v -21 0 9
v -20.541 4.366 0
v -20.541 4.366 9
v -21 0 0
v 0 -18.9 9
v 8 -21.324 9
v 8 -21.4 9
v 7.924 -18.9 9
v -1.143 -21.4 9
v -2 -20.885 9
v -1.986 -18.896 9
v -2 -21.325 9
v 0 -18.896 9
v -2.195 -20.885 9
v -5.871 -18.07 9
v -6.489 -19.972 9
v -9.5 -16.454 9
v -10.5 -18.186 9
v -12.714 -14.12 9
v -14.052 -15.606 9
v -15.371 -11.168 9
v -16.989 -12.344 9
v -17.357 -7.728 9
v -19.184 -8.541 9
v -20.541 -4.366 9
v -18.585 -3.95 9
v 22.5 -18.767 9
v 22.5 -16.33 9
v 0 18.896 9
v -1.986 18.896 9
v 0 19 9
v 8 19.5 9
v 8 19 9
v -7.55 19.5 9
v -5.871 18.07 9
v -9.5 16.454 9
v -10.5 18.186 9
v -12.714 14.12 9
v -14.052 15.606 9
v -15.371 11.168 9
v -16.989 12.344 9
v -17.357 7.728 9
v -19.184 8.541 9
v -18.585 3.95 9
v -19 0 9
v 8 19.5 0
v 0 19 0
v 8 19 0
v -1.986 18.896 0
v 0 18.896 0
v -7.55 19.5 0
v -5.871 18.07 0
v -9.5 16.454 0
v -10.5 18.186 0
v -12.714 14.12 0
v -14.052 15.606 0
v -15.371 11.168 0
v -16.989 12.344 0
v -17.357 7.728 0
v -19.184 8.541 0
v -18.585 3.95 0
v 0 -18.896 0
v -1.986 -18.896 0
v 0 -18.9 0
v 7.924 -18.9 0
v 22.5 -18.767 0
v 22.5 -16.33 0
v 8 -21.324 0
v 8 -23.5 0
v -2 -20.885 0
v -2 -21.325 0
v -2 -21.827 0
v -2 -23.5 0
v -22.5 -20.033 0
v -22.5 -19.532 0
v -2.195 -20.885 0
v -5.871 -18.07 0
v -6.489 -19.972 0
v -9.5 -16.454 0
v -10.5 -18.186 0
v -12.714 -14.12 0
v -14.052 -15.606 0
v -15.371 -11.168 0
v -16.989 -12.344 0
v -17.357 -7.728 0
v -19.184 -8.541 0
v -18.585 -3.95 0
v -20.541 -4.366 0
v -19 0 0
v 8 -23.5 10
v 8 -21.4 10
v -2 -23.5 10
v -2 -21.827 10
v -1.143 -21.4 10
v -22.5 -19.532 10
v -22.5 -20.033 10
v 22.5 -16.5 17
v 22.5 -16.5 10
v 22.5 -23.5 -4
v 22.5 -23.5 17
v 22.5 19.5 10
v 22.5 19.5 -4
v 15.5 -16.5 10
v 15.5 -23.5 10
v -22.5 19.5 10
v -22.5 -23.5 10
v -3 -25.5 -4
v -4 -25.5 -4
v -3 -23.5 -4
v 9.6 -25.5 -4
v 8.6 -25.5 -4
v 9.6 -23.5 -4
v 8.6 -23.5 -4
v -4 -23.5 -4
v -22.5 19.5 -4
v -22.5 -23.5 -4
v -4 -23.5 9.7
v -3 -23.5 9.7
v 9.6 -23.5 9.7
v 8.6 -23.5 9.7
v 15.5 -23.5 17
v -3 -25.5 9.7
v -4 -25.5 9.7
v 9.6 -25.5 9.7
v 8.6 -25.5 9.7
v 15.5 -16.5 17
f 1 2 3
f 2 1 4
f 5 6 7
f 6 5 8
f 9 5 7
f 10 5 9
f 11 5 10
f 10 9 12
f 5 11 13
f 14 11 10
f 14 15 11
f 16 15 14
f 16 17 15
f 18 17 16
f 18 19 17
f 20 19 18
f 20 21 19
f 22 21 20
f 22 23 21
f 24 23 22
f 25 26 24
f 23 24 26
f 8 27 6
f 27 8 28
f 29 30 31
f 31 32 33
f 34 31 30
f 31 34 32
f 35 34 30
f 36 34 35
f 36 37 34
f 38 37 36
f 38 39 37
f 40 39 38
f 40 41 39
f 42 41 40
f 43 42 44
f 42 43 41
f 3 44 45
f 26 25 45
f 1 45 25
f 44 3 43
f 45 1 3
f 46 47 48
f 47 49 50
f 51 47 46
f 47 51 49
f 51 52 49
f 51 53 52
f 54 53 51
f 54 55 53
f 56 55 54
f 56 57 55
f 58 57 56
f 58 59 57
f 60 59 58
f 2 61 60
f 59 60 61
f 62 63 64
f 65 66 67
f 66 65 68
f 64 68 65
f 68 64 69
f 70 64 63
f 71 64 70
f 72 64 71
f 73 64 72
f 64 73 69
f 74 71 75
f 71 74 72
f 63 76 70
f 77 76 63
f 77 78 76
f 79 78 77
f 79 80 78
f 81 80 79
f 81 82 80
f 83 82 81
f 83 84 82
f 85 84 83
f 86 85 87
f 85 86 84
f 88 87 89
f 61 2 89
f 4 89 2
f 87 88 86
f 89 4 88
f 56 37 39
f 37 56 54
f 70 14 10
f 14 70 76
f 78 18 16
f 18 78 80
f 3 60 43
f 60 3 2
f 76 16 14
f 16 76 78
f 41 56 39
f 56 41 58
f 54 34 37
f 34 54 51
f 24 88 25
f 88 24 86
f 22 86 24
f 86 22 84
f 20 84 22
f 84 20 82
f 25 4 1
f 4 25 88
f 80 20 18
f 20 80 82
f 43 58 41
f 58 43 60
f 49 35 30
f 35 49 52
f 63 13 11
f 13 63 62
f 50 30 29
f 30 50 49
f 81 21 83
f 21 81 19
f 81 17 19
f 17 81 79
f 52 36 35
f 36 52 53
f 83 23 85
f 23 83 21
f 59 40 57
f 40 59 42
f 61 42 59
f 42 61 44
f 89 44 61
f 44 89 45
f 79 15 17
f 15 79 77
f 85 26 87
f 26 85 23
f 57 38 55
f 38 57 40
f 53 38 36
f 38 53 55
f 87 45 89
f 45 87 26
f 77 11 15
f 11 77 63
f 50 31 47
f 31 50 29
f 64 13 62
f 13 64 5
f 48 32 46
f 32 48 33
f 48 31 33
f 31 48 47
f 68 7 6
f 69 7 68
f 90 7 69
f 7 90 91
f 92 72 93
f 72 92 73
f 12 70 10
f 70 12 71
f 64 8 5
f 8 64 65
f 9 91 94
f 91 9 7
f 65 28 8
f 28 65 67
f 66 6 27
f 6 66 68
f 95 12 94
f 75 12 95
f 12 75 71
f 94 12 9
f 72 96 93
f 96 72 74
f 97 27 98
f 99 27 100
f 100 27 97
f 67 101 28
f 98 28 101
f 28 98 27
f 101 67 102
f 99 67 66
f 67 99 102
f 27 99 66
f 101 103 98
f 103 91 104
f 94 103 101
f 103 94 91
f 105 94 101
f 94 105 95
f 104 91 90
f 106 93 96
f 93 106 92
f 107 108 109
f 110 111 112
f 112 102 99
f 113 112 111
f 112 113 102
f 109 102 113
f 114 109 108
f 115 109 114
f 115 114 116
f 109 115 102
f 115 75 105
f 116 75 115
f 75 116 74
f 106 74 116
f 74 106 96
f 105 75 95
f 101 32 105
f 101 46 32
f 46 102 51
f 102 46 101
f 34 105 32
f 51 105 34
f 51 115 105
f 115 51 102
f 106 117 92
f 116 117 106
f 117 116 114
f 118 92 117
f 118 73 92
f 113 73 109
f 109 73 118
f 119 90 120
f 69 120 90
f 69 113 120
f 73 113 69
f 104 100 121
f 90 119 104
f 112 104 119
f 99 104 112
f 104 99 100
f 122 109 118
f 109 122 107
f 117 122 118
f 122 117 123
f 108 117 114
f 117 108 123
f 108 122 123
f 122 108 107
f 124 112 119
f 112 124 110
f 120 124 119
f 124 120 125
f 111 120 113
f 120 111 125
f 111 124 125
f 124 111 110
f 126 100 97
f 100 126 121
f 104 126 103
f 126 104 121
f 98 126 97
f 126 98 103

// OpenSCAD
difference() {
    translate([0,-2,3]) cube([45,43,14], center=true);

    union() {
        difference() {
            cylinder(d=42, h=9);
            cylinder(d=38, h=9);
            translate([21,0,4.5]) cube([42, 42, 20], center=true);
        }
        translate([0, 19,0]) cube([8,5,9]);
        translate([-2, -23.9,0]) cube([10,5,9]);
        translate([-2, -26.4,0]) cube([10,5,20]);
        translate([7, -21.5,0]) rotate([0,0,10]) cube([50,2.4,9]);
        translate([0, -21.5,0]) rotate([0,0,175]) cube([50,0.5,20]);
    };
};
translate([-4,-25.5,-4]) cube([1,2,13.7]);
translate([8.6,-25.5,-4]) cube([1,2,13.7]);
translate([15.5,-23.5,10]) cube([7,7,7]);
